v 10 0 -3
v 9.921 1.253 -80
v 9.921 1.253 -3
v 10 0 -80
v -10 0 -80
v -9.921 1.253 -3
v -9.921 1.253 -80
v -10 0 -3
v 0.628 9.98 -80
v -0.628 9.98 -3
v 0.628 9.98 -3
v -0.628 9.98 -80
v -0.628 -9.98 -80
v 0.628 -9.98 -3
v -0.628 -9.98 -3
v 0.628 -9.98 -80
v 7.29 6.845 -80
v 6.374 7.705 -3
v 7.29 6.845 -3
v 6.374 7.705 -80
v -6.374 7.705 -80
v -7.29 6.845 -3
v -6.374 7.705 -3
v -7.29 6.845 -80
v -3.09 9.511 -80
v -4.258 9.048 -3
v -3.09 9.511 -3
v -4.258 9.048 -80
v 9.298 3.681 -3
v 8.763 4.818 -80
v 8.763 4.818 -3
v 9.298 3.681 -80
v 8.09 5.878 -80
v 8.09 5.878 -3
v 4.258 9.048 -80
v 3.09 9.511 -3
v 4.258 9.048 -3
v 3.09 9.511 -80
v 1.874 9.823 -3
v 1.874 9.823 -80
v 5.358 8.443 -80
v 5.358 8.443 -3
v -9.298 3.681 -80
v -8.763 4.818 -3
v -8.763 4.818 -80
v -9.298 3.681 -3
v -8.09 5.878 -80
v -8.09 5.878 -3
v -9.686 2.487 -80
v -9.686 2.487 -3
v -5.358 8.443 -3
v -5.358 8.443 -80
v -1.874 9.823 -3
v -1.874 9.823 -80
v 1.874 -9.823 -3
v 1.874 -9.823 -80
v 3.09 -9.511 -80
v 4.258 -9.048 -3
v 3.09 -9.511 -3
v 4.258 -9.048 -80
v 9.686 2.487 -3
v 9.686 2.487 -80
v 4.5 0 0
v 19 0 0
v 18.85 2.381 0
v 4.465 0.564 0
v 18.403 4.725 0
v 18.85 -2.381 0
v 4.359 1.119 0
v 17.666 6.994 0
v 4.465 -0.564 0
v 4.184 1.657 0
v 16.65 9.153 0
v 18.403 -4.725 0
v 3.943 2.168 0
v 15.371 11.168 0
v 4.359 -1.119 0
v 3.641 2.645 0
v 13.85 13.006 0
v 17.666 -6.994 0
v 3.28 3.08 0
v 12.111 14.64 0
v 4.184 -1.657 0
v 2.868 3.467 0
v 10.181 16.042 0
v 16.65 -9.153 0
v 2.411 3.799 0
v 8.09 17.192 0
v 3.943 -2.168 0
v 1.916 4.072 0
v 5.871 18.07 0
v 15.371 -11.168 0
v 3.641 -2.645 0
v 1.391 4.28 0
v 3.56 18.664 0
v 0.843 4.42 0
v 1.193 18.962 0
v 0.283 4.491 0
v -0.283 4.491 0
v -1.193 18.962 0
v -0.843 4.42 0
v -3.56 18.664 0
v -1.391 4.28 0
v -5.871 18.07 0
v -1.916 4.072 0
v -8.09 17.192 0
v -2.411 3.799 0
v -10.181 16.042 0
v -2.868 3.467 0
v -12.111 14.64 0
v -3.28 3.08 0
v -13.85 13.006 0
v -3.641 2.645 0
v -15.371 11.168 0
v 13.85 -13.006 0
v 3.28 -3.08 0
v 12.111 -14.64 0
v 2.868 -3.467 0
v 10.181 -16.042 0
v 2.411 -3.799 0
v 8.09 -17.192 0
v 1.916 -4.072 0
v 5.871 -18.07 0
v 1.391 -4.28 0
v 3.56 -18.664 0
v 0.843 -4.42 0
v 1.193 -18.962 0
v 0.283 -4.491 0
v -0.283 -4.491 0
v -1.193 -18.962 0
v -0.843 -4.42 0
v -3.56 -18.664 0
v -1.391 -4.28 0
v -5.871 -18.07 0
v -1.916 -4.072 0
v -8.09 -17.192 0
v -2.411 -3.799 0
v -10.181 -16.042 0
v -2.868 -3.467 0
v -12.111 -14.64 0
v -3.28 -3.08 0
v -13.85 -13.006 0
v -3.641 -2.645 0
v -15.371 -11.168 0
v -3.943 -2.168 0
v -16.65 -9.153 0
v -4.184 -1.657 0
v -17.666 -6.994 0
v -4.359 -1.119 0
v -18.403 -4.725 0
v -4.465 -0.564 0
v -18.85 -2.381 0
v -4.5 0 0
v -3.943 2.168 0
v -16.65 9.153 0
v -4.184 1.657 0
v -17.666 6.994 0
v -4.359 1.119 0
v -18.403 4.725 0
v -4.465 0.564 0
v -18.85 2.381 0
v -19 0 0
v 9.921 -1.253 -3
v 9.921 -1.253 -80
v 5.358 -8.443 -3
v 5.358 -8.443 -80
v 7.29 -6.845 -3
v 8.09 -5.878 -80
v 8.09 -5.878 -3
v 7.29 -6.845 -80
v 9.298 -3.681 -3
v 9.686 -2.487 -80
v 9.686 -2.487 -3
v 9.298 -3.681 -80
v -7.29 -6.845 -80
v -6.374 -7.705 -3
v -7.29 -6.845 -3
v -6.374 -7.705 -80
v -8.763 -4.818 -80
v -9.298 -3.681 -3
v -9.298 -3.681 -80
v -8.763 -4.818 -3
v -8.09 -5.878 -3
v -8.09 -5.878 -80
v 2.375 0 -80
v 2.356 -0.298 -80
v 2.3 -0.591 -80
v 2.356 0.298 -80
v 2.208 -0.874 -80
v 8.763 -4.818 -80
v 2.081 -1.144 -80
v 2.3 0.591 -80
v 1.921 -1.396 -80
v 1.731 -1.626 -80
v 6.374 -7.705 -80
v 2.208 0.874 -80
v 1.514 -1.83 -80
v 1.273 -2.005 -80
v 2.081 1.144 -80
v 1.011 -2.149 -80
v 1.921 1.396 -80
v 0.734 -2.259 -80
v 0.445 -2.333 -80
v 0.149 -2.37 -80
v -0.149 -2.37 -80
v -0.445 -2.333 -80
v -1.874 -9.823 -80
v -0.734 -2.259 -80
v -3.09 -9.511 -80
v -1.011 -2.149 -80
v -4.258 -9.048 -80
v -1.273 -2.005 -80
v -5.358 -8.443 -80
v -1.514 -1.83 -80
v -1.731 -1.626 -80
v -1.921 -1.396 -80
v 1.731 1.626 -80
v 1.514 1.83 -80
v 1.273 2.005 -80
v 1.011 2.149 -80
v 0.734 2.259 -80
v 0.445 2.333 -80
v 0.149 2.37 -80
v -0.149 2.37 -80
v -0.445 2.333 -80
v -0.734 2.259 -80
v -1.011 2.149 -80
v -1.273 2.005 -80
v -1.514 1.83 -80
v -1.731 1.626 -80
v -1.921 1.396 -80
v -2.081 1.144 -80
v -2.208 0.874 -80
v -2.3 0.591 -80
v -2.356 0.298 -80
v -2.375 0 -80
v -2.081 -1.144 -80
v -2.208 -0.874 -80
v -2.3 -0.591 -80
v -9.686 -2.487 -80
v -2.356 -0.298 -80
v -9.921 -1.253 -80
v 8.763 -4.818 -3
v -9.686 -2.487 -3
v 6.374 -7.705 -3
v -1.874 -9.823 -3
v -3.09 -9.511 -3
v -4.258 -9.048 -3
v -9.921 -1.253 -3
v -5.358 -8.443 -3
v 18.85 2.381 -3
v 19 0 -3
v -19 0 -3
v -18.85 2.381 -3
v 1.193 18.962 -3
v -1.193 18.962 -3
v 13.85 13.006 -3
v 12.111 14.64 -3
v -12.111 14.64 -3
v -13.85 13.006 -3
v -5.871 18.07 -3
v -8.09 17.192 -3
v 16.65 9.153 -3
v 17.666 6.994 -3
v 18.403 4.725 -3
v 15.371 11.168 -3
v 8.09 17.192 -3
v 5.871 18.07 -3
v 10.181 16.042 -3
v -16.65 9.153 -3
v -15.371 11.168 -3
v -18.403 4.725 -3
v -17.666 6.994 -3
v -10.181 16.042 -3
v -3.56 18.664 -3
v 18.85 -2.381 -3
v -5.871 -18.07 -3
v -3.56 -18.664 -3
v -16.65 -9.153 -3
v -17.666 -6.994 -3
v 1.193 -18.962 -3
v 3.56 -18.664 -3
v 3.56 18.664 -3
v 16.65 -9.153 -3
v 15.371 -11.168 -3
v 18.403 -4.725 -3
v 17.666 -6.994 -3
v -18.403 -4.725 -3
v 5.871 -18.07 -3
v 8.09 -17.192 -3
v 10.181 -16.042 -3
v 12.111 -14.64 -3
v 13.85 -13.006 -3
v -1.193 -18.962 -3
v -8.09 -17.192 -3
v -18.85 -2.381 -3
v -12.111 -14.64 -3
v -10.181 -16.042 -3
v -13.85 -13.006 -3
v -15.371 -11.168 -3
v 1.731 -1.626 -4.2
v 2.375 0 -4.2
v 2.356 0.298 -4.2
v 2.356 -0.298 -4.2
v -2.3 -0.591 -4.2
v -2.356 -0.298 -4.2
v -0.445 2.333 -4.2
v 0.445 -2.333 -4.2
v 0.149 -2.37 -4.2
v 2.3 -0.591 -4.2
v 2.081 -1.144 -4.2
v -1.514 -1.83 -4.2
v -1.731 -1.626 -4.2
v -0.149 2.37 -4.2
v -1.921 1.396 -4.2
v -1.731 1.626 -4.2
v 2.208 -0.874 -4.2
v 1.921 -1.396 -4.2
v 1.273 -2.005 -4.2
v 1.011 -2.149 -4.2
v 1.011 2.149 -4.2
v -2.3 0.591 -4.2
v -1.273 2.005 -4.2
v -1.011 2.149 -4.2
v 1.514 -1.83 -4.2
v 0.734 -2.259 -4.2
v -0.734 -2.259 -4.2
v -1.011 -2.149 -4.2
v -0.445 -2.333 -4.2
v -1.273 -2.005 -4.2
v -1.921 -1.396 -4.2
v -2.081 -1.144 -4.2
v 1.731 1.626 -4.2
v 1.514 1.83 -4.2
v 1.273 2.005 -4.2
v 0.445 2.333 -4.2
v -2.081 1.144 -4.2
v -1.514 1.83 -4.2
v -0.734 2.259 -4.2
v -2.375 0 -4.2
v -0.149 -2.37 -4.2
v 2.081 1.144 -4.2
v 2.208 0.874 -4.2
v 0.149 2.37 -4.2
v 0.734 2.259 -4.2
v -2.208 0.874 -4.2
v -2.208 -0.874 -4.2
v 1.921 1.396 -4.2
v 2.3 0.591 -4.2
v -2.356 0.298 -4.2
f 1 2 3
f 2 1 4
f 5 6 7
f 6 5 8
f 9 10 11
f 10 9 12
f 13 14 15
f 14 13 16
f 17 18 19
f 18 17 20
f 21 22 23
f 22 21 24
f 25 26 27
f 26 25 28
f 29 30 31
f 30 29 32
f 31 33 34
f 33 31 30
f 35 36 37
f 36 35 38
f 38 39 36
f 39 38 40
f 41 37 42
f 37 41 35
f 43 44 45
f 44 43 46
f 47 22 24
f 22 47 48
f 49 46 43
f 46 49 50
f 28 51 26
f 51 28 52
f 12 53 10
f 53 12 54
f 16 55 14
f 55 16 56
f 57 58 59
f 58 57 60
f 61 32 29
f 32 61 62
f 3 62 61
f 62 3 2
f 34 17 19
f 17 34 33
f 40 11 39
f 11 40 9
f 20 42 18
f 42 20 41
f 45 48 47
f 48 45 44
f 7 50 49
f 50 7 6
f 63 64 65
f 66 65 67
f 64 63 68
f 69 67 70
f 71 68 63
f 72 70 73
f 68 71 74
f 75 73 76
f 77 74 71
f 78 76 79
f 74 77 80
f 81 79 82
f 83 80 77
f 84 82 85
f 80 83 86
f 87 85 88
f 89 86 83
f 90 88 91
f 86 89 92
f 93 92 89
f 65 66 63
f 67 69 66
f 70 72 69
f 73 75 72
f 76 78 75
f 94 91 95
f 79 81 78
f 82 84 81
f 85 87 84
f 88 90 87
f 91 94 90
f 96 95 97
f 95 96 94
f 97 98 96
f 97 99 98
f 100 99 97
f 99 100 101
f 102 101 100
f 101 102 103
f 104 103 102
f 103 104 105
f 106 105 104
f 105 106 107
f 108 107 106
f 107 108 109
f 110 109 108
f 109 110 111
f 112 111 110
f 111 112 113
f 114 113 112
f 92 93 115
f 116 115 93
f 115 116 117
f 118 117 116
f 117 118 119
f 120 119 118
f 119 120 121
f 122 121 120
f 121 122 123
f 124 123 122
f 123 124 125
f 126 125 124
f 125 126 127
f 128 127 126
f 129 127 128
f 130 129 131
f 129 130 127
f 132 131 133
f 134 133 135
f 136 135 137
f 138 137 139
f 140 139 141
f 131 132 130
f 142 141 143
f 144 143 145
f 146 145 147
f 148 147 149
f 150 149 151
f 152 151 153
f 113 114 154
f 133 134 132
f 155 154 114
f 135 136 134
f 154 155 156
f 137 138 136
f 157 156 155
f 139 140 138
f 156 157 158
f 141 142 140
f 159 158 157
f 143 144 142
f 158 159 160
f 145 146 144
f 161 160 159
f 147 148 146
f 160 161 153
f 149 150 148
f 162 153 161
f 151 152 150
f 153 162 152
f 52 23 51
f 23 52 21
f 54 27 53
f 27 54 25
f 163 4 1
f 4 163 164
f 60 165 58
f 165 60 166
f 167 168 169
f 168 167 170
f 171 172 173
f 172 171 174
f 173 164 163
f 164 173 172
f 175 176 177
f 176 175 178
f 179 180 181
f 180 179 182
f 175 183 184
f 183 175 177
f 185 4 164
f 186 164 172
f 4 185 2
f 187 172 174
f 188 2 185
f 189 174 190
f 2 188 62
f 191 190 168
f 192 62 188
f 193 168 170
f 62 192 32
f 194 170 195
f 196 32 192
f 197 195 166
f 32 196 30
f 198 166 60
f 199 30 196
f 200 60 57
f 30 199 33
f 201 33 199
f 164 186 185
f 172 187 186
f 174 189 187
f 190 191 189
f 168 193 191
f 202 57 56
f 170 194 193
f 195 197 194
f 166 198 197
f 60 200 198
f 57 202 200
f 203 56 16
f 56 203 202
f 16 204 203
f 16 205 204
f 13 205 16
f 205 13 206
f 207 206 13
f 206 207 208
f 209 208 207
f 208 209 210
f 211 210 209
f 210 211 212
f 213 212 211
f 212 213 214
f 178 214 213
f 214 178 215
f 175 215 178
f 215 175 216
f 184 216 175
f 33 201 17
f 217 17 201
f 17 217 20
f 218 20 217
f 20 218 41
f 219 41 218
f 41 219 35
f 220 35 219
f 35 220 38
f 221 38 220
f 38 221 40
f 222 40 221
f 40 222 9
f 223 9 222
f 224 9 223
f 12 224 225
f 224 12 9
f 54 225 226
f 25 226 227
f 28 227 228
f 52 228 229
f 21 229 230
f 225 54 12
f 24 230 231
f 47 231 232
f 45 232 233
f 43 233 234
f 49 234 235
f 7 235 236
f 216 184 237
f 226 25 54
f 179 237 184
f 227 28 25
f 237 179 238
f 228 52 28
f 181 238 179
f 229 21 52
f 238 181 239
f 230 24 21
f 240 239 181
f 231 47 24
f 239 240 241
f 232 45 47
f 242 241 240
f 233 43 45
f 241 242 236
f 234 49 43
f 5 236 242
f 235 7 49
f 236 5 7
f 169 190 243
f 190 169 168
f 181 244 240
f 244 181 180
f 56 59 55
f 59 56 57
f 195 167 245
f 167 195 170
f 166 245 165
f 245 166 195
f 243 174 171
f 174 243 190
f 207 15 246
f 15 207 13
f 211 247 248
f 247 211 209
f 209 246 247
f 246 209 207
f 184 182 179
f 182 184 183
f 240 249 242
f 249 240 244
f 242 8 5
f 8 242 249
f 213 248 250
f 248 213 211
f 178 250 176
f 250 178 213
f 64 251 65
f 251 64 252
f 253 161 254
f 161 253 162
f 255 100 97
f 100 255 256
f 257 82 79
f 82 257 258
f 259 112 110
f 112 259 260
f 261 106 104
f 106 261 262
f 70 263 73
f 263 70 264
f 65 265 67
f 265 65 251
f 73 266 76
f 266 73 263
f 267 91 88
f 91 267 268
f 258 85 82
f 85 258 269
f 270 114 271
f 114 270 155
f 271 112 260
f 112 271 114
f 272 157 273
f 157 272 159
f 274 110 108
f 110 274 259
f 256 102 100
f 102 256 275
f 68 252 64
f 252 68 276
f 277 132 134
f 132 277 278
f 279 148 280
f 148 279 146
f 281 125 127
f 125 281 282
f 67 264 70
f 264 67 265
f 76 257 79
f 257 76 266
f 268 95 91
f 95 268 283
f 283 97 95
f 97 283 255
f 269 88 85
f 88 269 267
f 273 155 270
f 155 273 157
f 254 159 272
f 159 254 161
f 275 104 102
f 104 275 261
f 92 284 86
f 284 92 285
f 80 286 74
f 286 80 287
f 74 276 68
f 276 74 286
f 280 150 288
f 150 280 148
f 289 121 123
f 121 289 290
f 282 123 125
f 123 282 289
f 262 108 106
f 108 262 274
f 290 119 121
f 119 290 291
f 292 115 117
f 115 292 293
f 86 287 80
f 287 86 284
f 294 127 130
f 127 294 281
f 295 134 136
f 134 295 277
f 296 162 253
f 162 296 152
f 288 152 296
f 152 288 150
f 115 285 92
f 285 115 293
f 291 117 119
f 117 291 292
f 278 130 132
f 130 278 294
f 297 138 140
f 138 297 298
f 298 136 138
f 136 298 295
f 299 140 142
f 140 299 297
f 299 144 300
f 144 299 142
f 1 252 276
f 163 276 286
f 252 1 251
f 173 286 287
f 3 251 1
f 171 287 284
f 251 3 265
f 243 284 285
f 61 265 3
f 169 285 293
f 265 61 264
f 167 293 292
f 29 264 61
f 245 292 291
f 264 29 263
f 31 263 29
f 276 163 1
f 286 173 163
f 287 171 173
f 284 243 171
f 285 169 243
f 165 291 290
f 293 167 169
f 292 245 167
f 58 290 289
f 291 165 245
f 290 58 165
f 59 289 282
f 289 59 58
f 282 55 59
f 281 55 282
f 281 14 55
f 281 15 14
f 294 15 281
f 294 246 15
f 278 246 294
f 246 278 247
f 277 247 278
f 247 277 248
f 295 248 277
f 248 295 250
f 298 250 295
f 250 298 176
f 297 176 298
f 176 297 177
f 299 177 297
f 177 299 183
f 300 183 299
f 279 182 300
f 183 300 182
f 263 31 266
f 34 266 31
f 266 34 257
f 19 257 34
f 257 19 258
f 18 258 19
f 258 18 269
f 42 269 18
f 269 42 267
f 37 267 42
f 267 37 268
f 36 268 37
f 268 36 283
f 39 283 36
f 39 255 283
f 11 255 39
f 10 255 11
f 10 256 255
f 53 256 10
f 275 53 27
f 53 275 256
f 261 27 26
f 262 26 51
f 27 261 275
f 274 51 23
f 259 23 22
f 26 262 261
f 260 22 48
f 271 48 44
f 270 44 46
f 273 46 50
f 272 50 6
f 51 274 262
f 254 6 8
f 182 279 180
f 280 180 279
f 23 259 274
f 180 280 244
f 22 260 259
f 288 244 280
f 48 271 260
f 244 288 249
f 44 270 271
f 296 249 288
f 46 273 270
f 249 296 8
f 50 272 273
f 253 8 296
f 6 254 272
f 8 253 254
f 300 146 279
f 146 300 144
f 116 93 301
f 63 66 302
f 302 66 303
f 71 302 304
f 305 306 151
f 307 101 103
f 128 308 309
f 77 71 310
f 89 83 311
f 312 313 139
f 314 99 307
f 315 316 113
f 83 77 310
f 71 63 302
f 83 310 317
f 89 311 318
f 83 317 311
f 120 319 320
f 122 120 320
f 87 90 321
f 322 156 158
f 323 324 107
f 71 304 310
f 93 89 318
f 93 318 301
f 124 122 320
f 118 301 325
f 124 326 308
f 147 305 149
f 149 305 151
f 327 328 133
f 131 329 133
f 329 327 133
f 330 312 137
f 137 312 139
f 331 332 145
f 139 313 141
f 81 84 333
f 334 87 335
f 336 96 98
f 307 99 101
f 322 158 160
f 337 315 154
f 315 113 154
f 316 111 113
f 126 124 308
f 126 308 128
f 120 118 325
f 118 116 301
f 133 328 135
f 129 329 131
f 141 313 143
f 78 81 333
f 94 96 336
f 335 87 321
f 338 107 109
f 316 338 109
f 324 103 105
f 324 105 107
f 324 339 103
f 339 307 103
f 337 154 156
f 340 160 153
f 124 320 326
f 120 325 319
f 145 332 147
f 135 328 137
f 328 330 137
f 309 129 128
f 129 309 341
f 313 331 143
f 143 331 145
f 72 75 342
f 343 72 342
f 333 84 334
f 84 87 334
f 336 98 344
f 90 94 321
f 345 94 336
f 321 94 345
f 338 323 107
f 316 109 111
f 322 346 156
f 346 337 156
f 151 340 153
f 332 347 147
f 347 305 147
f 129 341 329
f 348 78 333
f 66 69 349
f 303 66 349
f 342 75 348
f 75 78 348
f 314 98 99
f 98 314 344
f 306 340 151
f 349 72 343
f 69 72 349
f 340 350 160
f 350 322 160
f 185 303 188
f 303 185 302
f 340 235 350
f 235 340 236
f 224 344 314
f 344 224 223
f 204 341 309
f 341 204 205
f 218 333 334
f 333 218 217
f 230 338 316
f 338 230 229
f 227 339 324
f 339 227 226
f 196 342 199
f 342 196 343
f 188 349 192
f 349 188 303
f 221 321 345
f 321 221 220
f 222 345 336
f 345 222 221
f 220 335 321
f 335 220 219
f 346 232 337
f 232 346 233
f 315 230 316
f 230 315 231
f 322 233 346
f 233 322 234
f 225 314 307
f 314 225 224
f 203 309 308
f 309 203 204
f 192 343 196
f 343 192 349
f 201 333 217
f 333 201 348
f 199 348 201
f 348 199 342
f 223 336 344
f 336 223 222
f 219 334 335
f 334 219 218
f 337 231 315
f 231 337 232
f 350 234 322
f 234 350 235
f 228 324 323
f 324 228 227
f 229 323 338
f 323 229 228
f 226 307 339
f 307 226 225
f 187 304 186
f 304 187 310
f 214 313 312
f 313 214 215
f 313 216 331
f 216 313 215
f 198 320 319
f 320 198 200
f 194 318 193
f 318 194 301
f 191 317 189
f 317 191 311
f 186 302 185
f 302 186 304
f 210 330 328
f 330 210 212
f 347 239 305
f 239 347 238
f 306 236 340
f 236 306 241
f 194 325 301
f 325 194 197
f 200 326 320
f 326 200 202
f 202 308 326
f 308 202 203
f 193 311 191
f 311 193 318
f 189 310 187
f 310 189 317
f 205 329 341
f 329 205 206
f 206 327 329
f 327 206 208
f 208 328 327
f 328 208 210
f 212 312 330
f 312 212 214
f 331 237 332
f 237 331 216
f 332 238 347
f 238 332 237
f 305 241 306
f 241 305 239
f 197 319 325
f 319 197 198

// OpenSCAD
$fn = 50;


difference() {
	union() {
		translate(v = [0, 0, -80.0000000000]) {
			cylinder(h = 80, r = 10.0000000000);
		}
		translate(v = [0, 0, -3.0000000000]) {
			cylinder(h = 3, r = 19.0000000000);
		}
	}
	union() {
		translate(v = [0, 0, 0]) {
			rotate(a = [0, 0, 0]) {
				difference() {
					union() {
						#translate(v = [0, 0, -80.0000000000]) {
							cylinder(h = 80, r = 2.2500000000);
						}
						#translate(v = [0, 0, -4.2000000000]) {
							cylinder(h = 4.2000000000, r1 = 2.3750000000, r2 = 4.5000000000);
						}
						#translate(v = [0, 0, -80.0000000000]) {
							cylinder(h = 80, r = 2.3750000000);
						}
						#translate(v = [0, 0, -80.0000000000]) {
							cylinder(h = 80, r = 2.2500000000);
						}
					}
					union();
				}
			}
		}
	}
}
